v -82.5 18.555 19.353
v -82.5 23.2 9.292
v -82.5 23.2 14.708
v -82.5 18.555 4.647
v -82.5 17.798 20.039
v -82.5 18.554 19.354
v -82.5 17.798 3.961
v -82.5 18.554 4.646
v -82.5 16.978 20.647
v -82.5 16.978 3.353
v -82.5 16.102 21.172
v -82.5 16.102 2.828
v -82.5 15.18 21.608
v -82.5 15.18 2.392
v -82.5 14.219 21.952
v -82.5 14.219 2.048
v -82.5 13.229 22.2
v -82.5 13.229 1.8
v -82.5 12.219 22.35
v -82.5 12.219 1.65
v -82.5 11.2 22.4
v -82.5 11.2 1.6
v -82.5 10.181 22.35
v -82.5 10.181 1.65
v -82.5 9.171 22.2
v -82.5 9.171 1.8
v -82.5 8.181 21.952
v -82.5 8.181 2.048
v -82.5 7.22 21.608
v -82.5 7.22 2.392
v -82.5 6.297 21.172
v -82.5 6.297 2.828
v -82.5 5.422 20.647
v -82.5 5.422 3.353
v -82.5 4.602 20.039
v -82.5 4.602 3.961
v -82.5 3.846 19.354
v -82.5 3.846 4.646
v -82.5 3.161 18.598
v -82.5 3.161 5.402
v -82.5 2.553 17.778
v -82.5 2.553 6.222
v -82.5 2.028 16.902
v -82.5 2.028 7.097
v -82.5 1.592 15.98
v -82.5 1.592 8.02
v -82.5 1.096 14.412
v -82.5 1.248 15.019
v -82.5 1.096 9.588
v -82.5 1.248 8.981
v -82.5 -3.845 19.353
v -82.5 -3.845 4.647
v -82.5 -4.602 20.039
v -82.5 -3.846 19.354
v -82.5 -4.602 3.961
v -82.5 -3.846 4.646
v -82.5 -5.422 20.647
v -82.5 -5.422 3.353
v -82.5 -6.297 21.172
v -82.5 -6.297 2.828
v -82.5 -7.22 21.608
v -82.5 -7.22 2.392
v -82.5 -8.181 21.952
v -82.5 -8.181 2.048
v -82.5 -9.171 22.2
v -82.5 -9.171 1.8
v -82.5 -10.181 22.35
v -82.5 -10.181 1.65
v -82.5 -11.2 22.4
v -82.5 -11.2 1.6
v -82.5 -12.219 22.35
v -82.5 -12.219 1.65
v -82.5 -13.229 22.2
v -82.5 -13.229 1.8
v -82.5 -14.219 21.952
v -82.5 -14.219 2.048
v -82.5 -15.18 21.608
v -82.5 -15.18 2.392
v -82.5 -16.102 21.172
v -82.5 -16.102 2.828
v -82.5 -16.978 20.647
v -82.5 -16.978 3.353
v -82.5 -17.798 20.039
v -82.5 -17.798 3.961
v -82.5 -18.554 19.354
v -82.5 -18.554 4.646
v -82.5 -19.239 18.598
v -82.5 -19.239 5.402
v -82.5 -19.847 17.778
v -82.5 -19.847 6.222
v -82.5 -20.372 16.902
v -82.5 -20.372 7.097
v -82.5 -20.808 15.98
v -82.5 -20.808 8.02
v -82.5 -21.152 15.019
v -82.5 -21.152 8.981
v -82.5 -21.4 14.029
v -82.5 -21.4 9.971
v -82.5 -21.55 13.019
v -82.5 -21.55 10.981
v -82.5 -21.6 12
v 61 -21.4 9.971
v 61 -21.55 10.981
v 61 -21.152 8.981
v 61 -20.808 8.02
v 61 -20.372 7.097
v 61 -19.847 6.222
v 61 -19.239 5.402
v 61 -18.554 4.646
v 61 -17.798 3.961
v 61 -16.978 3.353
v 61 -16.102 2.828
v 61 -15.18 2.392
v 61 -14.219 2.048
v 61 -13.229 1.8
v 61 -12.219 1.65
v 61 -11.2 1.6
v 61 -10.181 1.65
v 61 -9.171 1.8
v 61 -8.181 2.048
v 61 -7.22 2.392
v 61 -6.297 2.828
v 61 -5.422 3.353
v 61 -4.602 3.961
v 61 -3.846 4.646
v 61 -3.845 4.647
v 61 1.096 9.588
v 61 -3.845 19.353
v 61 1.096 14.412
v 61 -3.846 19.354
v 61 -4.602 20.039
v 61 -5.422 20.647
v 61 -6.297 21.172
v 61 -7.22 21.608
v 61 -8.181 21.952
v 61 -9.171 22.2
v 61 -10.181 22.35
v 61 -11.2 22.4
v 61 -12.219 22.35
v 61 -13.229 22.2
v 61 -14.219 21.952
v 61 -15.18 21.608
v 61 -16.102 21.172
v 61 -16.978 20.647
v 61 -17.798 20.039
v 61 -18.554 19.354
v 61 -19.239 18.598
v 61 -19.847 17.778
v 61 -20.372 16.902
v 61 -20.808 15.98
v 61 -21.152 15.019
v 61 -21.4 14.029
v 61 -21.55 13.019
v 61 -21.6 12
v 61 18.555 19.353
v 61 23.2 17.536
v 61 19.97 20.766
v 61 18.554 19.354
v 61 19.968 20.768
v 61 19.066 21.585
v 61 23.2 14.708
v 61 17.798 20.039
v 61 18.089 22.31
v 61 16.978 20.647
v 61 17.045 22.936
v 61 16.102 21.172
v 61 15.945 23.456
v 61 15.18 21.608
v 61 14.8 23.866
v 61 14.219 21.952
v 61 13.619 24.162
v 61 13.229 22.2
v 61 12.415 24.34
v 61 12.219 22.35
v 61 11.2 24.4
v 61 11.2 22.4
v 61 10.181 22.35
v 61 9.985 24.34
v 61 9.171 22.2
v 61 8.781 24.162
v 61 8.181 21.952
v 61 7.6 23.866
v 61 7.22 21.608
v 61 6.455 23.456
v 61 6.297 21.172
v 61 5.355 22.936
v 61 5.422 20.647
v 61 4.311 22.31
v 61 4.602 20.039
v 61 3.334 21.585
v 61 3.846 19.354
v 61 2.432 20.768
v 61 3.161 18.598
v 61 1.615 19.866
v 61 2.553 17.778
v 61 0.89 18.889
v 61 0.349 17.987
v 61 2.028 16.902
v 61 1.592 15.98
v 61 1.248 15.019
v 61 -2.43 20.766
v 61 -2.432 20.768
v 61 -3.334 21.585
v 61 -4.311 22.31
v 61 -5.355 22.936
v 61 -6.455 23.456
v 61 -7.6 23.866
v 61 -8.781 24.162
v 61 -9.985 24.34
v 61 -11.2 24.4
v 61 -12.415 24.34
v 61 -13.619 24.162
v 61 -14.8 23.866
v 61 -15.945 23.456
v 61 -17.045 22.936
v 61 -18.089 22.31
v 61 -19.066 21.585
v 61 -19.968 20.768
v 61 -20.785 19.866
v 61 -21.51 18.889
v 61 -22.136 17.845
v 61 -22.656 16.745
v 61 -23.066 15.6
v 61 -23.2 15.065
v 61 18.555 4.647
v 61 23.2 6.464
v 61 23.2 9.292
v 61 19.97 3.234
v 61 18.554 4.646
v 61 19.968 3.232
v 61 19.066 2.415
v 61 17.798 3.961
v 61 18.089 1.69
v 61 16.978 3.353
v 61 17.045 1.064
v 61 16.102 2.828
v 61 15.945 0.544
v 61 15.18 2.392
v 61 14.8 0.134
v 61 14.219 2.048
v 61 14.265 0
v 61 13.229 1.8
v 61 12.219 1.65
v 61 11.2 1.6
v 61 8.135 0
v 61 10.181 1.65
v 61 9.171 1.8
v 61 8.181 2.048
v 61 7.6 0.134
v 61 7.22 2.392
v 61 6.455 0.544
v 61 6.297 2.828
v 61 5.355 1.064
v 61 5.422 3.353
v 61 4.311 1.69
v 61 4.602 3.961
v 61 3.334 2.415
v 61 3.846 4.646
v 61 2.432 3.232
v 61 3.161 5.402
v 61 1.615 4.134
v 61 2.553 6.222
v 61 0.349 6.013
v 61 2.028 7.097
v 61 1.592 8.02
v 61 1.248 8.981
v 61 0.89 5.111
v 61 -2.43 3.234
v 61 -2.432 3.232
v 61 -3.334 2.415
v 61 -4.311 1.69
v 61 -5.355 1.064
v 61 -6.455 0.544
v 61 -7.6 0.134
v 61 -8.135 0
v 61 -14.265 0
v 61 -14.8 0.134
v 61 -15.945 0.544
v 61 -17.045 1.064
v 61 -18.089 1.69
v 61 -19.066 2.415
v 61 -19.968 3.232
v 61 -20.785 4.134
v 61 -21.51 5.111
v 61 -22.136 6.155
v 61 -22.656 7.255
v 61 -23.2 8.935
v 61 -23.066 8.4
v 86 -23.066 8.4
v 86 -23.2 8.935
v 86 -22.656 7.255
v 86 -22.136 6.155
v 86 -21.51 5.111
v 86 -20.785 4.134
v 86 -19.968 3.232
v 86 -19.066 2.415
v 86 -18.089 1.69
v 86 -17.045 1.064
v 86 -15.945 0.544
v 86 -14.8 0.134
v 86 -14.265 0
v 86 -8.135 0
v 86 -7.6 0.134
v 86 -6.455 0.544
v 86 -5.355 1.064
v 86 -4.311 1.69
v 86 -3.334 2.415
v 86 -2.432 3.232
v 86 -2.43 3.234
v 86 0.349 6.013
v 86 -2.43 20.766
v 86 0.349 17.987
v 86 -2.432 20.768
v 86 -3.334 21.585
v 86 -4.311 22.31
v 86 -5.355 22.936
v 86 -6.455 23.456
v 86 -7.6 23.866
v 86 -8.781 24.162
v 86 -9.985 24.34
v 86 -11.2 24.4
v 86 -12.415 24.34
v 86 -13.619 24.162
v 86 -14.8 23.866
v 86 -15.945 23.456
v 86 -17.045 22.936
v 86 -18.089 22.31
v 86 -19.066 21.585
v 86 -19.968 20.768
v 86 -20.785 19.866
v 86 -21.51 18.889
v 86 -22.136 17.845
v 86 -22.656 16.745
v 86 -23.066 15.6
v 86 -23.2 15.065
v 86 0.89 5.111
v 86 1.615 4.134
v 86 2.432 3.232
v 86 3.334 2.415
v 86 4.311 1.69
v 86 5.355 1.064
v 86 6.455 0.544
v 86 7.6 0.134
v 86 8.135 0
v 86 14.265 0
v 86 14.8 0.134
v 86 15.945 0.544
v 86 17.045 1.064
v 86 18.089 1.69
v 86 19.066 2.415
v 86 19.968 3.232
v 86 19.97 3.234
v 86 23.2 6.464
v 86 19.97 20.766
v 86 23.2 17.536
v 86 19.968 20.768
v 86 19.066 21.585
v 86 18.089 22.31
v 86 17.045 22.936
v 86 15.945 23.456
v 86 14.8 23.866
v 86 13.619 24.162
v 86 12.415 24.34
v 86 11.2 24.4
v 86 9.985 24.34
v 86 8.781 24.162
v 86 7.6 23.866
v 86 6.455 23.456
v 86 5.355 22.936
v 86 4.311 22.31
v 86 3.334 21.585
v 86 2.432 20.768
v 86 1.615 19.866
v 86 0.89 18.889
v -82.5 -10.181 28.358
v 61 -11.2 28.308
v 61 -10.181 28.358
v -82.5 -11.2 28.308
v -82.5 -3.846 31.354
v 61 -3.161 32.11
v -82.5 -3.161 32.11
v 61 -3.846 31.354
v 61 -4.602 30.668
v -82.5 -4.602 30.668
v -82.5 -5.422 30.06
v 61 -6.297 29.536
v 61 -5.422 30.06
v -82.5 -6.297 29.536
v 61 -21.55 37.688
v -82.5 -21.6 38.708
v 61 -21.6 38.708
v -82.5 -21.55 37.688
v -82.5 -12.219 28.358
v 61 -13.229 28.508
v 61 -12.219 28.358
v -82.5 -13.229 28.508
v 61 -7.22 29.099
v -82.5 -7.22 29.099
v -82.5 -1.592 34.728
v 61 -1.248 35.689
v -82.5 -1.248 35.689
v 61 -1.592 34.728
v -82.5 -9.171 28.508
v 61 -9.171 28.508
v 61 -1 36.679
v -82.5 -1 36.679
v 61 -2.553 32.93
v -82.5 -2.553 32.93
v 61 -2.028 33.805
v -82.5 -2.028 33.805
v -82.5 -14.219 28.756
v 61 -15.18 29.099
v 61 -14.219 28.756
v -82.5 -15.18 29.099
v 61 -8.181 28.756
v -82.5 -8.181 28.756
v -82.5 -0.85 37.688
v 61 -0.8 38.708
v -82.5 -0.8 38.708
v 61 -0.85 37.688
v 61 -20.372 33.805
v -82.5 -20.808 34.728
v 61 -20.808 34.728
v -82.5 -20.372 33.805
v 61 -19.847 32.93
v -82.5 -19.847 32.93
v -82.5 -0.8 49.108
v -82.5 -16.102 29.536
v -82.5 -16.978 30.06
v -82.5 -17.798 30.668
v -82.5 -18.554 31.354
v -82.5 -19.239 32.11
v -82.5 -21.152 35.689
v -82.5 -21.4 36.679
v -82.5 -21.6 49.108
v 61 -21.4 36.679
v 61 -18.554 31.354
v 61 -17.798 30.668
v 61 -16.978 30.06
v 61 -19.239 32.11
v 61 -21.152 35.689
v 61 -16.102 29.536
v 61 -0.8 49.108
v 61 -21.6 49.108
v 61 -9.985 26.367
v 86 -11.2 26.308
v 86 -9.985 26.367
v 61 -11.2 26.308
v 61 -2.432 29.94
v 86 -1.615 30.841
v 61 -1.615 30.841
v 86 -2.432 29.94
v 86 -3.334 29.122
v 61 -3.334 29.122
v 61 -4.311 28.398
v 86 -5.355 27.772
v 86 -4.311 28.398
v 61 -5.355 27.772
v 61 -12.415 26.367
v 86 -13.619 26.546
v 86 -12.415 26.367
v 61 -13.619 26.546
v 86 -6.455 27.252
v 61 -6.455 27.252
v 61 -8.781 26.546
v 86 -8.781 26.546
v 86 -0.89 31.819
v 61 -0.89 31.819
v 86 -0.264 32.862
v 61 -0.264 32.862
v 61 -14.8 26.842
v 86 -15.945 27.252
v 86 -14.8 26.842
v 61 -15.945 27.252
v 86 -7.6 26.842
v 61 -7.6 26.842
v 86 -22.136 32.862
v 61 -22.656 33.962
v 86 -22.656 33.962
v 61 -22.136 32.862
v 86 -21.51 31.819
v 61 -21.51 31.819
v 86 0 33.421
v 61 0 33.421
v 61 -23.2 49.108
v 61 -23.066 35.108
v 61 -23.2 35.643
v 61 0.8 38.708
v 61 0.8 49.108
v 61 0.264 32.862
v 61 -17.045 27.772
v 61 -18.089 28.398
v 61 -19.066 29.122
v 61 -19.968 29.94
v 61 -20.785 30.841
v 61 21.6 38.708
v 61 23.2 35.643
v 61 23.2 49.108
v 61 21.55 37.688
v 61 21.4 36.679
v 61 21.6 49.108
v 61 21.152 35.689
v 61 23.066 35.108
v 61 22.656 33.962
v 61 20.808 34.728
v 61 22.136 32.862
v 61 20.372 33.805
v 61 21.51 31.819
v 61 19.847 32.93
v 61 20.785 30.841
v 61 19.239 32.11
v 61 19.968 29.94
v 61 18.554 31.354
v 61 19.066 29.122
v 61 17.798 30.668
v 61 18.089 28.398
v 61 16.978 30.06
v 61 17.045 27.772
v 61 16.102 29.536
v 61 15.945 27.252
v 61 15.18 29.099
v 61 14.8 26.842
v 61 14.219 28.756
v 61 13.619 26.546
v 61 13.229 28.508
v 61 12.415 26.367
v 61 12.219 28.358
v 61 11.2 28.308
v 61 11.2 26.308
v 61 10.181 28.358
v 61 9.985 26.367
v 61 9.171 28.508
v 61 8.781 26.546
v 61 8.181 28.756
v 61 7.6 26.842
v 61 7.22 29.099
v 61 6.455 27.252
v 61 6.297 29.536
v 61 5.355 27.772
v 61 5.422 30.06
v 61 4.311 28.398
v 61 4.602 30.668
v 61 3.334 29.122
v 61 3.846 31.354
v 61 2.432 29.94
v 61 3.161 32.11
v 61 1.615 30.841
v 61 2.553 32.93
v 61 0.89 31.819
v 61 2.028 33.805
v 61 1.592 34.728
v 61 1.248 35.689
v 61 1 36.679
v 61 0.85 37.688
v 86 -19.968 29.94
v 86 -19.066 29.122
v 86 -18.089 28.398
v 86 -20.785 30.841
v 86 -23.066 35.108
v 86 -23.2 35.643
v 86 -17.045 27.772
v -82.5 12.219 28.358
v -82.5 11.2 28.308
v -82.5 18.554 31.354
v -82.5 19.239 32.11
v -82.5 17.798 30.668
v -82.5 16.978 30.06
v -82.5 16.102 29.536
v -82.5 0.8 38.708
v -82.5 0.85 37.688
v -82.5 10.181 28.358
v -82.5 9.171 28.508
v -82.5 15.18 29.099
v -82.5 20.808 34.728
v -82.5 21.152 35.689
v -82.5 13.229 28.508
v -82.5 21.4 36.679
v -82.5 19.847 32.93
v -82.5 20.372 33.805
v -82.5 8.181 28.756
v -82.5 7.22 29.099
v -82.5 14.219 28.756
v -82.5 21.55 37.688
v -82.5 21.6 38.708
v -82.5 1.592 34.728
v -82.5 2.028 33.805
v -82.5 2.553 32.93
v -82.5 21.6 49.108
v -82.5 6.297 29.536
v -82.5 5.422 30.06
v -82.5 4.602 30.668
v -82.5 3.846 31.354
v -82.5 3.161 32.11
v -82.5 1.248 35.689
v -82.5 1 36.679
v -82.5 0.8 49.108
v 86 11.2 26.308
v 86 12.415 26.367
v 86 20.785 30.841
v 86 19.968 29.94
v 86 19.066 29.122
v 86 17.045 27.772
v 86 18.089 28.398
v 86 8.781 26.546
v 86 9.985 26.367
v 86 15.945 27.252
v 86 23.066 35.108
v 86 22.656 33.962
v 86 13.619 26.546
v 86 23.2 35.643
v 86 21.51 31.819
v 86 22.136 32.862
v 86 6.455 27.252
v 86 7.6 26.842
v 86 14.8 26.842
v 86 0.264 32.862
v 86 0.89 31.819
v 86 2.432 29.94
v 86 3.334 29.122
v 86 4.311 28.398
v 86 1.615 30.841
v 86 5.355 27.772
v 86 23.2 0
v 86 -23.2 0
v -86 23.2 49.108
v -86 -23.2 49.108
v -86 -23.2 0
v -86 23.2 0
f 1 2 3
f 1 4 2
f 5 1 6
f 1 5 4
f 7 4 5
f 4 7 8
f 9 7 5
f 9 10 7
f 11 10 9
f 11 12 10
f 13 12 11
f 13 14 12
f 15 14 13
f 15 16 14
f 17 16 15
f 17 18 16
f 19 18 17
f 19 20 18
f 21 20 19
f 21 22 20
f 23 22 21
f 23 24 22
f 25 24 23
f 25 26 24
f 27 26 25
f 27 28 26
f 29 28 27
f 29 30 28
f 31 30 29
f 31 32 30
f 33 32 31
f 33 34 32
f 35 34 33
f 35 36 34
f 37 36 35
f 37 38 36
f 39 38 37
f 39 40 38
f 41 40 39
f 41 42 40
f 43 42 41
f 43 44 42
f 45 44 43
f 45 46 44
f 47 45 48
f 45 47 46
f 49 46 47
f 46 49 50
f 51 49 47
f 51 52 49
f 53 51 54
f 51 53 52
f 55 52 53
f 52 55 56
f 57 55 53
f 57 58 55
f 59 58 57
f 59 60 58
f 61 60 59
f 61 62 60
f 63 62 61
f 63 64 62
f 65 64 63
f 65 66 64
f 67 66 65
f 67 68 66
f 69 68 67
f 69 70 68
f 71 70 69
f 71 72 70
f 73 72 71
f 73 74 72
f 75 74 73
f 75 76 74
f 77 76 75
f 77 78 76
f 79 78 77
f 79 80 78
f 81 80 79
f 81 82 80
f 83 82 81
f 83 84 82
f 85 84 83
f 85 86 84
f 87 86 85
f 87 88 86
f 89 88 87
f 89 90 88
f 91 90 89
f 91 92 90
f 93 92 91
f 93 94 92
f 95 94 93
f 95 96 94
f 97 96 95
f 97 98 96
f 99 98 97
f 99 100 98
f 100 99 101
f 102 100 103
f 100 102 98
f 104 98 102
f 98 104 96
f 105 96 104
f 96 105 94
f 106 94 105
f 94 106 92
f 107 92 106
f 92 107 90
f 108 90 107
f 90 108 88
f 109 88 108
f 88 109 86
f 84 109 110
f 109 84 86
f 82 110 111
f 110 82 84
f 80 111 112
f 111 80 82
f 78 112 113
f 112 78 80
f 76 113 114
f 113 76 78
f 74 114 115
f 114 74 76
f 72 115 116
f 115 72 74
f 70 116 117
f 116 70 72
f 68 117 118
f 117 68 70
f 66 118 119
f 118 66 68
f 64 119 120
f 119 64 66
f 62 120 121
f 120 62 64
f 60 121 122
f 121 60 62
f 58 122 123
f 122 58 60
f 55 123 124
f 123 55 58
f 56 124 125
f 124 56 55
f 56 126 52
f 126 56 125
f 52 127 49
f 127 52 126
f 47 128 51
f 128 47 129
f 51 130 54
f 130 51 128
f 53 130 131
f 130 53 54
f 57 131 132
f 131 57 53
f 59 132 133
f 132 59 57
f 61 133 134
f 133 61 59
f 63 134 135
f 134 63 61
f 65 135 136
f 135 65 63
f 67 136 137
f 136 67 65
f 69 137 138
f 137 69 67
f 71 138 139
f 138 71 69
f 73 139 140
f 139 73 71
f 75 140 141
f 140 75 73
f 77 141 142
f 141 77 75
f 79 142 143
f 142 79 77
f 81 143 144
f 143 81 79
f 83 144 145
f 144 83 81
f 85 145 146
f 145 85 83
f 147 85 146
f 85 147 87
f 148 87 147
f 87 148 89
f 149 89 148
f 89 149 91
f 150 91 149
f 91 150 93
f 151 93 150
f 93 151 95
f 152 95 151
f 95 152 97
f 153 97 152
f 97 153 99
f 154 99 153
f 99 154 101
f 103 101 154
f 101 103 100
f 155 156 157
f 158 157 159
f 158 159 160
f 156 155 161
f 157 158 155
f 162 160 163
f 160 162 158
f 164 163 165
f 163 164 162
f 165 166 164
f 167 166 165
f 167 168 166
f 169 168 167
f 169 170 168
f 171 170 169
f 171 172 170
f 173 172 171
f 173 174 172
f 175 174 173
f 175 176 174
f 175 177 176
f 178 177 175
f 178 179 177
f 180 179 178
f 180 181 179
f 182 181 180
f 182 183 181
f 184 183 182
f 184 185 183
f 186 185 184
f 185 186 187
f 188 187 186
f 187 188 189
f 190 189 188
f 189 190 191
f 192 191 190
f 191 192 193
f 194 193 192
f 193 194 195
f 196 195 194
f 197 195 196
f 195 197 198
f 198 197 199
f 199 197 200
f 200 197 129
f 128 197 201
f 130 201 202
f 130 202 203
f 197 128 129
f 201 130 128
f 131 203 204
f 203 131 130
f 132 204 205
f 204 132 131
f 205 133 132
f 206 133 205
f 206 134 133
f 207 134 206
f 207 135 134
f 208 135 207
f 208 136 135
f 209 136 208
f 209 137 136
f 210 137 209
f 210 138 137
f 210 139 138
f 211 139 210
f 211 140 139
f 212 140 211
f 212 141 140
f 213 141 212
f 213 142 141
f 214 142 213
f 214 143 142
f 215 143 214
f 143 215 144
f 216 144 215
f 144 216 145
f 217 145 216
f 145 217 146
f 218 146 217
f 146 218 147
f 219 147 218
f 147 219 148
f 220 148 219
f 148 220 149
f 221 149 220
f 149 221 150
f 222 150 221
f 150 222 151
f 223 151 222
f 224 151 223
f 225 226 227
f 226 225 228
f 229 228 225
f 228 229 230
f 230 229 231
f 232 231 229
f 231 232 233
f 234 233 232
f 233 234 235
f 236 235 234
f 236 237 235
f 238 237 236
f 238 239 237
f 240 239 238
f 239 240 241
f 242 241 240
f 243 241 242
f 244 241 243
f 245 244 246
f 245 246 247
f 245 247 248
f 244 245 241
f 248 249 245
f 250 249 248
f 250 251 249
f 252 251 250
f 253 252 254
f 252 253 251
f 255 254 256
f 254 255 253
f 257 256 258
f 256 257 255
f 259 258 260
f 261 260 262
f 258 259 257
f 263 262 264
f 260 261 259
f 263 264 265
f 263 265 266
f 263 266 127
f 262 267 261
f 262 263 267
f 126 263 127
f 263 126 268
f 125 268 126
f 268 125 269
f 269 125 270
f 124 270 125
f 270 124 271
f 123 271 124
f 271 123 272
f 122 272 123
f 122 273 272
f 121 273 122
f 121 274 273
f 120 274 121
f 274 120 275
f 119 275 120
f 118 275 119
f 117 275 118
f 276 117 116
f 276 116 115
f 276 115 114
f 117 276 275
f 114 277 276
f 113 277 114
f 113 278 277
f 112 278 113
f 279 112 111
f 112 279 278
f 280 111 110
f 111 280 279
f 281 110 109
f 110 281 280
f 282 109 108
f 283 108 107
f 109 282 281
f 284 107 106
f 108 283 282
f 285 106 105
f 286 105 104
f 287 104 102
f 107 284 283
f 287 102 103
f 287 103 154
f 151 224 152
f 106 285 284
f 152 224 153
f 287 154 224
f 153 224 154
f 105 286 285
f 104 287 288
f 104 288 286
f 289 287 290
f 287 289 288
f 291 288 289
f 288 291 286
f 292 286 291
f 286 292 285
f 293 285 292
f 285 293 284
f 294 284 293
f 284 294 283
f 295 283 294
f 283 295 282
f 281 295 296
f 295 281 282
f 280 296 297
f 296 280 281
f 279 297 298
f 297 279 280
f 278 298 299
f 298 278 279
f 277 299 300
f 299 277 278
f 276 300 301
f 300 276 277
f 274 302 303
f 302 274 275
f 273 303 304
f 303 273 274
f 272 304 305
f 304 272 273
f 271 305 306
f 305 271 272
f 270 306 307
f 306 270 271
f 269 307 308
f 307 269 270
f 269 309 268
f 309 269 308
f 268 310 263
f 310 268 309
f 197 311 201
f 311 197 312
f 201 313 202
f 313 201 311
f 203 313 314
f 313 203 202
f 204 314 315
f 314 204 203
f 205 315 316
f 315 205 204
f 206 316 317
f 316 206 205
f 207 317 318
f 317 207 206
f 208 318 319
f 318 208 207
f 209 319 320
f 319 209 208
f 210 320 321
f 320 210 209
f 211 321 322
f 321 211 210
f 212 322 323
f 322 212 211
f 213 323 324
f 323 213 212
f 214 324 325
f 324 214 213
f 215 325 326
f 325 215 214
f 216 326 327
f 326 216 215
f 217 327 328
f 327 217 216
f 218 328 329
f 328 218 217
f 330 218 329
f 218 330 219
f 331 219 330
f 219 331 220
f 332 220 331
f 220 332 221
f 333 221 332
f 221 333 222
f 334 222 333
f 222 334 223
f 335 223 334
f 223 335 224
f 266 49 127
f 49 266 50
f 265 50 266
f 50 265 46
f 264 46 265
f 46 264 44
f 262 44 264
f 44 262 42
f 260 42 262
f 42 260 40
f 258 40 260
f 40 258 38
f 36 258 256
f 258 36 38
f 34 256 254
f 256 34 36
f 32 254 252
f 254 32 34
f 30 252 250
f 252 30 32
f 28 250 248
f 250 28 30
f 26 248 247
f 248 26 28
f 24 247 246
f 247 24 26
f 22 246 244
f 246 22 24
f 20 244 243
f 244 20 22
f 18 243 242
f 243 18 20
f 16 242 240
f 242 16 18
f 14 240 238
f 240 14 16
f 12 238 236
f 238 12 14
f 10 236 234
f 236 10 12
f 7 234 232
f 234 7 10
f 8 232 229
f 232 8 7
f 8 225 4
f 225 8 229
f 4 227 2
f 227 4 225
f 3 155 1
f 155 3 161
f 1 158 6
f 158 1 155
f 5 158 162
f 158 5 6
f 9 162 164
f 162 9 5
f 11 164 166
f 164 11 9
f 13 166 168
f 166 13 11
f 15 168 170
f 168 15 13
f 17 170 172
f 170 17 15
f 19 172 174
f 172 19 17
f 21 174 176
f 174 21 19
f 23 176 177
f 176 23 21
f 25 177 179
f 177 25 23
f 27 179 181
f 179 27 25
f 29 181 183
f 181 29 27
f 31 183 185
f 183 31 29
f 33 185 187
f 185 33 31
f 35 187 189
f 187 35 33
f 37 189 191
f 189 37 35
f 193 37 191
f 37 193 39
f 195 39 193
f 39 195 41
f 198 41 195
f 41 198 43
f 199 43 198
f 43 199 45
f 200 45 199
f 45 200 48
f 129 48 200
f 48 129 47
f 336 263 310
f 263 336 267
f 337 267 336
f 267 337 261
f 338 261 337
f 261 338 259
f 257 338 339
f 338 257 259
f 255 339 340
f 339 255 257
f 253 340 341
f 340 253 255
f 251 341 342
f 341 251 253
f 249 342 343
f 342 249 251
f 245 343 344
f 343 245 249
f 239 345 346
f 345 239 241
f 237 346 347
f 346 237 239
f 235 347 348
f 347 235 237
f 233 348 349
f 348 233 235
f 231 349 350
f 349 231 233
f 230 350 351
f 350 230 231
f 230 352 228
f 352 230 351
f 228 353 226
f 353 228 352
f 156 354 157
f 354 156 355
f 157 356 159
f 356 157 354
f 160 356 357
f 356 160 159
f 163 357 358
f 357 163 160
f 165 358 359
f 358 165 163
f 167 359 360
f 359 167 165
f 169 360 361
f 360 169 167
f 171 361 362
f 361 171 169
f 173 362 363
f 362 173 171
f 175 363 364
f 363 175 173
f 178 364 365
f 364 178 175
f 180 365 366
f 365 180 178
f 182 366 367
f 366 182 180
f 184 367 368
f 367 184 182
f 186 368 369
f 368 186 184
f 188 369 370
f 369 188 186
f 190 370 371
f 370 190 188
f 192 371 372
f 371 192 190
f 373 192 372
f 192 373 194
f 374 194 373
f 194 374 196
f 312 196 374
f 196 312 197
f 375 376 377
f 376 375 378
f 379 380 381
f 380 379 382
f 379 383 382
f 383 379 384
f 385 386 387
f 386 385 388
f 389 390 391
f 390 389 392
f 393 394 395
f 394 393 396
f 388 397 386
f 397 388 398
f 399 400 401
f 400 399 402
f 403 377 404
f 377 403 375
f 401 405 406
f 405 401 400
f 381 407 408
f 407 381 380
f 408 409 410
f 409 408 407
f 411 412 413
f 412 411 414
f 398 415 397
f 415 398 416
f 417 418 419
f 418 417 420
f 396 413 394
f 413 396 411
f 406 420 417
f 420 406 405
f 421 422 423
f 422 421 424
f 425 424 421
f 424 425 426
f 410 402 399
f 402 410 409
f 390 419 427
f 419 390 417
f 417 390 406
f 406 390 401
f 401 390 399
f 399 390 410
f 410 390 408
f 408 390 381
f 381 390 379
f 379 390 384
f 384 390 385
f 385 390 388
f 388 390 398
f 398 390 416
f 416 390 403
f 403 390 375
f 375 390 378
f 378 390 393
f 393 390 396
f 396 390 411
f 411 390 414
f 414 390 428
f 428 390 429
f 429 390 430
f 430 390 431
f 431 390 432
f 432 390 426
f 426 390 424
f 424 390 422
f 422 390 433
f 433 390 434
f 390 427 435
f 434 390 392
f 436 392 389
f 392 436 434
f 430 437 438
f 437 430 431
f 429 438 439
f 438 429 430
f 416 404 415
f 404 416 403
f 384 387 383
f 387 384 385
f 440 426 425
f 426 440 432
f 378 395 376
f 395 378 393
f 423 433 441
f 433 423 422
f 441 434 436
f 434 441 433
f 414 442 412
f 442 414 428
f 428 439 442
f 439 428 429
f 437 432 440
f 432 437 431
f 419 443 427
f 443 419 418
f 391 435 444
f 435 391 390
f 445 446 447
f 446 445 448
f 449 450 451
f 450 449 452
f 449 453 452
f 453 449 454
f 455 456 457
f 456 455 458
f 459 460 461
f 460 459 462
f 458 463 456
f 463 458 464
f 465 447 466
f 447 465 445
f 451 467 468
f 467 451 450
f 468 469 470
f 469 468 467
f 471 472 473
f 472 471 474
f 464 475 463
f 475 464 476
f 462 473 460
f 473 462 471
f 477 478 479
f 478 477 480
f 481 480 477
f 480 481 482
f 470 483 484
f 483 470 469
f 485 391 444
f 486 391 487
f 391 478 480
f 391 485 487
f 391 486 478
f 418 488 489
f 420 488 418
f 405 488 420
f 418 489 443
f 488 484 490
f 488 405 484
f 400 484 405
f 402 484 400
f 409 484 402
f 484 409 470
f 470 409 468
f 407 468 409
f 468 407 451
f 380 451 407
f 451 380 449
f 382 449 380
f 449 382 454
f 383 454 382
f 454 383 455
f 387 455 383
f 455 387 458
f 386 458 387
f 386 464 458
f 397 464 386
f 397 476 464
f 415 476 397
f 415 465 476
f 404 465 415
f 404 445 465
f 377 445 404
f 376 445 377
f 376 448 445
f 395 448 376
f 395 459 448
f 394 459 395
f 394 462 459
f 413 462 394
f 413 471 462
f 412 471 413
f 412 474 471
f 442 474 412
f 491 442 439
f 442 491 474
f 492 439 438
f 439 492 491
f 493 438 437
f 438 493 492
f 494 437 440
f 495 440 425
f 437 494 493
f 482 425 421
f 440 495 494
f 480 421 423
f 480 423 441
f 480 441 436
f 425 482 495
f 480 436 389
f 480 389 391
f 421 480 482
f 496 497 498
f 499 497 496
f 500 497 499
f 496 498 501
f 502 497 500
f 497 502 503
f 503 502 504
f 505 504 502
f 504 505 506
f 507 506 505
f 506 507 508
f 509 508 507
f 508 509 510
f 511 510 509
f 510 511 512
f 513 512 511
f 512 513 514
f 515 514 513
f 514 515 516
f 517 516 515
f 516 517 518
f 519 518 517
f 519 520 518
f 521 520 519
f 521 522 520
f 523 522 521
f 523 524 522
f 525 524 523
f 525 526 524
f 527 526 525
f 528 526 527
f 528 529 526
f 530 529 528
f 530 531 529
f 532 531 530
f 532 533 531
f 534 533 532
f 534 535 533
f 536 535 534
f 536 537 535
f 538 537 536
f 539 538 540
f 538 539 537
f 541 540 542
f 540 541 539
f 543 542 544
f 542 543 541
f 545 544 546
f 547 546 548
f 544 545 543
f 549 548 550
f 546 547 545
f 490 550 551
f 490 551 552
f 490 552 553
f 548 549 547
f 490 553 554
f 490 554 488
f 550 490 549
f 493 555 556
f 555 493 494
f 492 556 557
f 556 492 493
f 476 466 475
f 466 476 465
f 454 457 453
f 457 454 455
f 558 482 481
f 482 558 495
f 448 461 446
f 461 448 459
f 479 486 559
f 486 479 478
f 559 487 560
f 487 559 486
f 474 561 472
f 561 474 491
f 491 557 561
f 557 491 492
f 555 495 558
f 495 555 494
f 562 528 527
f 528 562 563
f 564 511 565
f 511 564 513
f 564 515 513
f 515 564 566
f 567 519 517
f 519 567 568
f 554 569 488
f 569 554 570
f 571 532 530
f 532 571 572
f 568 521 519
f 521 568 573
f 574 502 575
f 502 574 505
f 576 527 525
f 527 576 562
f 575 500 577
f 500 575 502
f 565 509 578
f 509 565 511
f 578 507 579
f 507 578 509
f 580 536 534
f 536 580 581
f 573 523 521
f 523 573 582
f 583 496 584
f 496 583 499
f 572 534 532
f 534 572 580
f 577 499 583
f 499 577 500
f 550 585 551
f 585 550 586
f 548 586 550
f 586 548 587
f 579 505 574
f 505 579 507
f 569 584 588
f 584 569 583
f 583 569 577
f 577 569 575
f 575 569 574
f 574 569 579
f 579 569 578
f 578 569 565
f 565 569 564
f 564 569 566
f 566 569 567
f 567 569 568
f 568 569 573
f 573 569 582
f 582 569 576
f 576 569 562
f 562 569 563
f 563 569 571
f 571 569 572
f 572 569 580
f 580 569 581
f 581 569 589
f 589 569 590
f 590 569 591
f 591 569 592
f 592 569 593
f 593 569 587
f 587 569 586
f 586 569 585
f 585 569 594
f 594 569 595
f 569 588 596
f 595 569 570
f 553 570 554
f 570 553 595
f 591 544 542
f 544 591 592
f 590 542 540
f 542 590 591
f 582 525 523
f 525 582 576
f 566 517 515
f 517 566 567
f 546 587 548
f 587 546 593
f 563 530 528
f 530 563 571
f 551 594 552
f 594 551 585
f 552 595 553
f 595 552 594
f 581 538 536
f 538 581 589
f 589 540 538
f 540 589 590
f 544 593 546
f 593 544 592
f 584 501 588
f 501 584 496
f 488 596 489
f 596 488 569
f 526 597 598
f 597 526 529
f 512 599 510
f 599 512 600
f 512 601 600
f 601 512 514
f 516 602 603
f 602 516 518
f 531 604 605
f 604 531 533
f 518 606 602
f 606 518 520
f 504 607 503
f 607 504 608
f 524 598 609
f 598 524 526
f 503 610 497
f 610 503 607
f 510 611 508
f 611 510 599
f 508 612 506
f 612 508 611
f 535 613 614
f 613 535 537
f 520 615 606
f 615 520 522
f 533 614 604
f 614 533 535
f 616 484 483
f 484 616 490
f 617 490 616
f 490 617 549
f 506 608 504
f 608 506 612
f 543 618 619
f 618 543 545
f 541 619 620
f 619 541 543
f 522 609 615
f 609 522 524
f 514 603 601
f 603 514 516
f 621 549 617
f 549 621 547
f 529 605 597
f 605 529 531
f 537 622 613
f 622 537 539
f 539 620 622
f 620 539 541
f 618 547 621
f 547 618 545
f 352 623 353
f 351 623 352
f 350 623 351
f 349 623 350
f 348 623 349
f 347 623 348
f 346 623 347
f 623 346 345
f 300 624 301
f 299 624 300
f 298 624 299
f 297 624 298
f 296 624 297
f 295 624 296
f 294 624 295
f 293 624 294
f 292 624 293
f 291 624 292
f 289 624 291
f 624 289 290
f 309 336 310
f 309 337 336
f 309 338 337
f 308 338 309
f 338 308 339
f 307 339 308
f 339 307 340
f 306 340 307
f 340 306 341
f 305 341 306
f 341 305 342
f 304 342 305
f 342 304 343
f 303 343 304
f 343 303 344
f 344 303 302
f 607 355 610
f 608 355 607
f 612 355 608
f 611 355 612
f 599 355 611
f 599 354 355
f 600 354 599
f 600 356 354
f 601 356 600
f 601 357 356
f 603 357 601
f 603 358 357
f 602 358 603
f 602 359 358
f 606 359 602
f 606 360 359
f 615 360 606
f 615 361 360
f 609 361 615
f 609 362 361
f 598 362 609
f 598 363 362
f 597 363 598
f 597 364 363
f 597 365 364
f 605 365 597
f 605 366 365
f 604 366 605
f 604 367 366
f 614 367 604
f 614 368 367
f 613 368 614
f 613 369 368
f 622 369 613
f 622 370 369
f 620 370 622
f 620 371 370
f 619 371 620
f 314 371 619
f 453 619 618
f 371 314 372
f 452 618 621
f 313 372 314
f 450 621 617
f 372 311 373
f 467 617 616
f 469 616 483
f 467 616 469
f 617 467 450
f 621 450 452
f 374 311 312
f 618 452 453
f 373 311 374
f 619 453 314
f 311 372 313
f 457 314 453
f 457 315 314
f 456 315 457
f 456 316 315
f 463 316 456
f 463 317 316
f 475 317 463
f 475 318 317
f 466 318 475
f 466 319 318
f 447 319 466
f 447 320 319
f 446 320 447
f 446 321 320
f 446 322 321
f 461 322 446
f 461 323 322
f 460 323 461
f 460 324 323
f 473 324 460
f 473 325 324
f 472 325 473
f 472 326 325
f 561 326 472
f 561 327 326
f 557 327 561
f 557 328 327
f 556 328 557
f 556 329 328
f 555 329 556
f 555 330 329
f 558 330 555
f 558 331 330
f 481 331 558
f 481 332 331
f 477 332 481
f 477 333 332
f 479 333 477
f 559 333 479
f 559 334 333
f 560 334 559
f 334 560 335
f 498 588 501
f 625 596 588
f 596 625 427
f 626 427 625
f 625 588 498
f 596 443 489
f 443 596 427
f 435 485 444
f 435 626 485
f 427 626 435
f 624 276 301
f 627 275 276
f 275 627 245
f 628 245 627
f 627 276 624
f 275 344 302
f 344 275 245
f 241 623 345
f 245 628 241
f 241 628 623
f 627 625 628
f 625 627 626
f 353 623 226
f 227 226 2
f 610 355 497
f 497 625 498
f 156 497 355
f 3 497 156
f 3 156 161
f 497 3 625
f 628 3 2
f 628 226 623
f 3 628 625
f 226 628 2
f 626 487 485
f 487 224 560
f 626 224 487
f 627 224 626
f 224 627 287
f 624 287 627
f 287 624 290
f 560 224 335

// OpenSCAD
// file: common.scad
// ============================================================
// common.scad — shared parameters + modules for all designs
// LOCKED PEN SPECIFICATION (do not change)
// ============================================================
PEN_L = 165;      // pen length (mm)
PEN_A = 17;       // pen cross-section minor
PEN_B = 20;       // pen cross-section major (used as diameter envelope)
CLEAR = 0.4;      // fit clearance
WALL  = 1.6;      // minimum wall thickness

$fn = 64;

RCH = PEN_B/2 + CLEAR;   // = 10.4  channel radius
EPS = 0.01;

// --- open-top U trough cut, axis along X, centered at local origin -----------
// Removes a lower half-cylinder of radius r plus a full-width vertical slot
// upward, so the channel is open at the top (no ceiling -> no overhang).
module trough_cut(len, r=RCH, top=80) {
    union() {
        rotate([0,90,0]) cylinder(h=len, r=r, center=true);
        translate([0,0,top/2]) cube([len, 2*r, top], center=true); // slot upward
    }
}

// --- teardrop hole, axis along X, centered at local origin --------------------
// 45-degree self-supporting apex pointing +Z so a horizontal bore can print
// without support.
module teardrop_cut(len, r=RCH) {
    rotate([0,90,0])
        linear_extrude(height=len, center=true)
            union() {
                circle(r=r);
                polygon([[ 0.7071*r, 0.7071*r],
                         [ 0,         1.4142*r],
                         [-0.7071*r,  0.7071*r]]);
            }
}

// --- dial relief: widened open-top pocket at one channel end -----------------
// place at the +X or -X end of a channel so the dose dial clears / can be turned
module dial_relief(end_x, r=RCH+2.2, len=28, top=80) {
    translate([end_x, 0, 0]) trough_cut(len, r, top);
}
// main file
// q4_hybrid4 — 2x2: enclosed bottom row + open-top display row
// Family: combo. The bottom two pens ride in enclosed teardrop bores (dust
// protected, self-supporting); the top two sit in open-top cradles so they are
// easy to grab. Best of storage + display in one 4-pen block.
include <common.scad>

LBLK    = 172;
PITCH_Y = 2*RCH + WALL;            // 22.4
ROW_DZ  = 2.4142*RCH + WALL;       // 26.7  bottom apex -> top trough clearance
RR      = RCH + 2;

Y  = [-PITCH_Y/2, PITCH_Y/2];
ZB = WALL + RCH;                   // 12   bottom (enclosed) row
ZT = ZB + ROW_DZ;                  // 38.7 top (open) row

WBLK = PITCH_Y + 2*RCH + 2*WALL;   // 46.4
HBLK = ZT + RCH;                   // open trough opens at the top  (49.1)
RELIEF_X = LBLK/2 - 10;

difference() {
    translate([0,0,HBLK/2]) cube([LBLK, WBLK, HBLK], center=true);

    // bottom row: enclosed teardrop bores + teardrop dial relief
    for (yc = Y) {
        translate([0, yc, ZB]) teardrop_cut(PEN_L);
        translate([RELIEF_X, yc, ZB]) teardrop_cut(30, RR);
    }
    // top row: open-top cradles + widened open dial relief
    for (yc = Y) {
        translate([0, yc, ZT]) trough_cut(PEN_L);
        translate([RELIEF_X, yc, ZT]) trough_cut(30, RR);
    }
}
